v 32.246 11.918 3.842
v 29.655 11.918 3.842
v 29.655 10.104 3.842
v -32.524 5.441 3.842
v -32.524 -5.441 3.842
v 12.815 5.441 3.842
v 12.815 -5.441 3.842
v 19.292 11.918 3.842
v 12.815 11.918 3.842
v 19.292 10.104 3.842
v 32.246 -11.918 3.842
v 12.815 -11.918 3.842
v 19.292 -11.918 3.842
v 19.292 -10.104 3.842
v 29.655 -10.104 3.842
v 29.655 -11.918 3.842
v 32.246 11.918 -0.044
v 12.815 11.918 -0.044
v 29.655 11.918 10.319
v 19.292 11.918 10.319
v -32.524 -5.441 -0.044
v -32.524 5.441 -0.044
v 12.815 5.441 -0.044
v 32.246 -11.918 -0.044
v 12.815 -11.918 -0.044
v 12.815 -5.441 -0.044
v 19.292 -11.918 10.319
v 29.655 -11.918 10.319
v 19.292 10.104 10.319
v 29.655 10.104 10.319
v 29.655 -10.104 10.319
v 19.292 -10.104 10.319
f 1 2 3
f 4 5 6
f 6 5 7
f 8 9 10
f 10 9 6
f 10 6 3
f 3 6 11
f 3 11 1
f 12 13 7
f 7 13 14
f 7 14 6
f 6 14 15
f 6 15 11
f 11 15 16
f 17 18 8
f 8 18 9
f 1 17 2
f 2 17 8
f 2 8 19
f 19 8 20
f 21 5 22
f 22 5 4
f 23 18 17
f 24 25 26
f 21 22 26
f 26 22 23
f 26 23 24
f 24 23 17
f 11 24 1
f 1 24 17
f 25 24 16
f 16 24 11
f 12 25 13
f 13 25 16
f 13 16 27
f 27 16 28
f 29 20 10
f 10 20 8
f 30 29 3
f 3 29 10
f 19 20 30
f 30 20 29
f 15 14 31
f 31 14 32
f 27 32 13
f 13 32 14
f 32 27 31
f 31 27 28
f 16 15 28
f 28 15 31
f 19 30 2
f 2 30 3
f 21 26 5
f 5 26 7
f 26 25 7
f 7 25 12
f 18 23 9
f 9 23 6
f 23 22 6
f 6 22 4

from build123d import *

# Parameters (mm, degrees)
SKETCH2_W           = 63.5
SKETCH2_H           = 23.368
BOSS_EXTRUDE1_DEPTH = 3.81
SKETCH3_W           = 12.7
SKETCH3_H           = 1.778
BOSS_EXTRUDE2_DEPTH = 6.35
SKETCH4_W           = 2.54
SKETCH4_H           = 6.35
CUT_EXTRUDE1_DEPTH  = 24.368
SKETCH5_W           = 44.45
SKETCH5_H           = 6.35
CUT_EXTRUDE2_DEPTH  = 4.81
SCALE1_SCALE        = 1.02


with BuildPart() as part:
    # Sketch2 → Boss-Extrude1 (new body)
    with BuildSketch(Plane.XY):
        Rectangle(SKETCH2_W, SKETCH2_H)
    extrude(amount=BOSS_EXTRUDE1_DEPTH)

    # Sketch3 → Boss-Extrude2 (add)
    with BuildSketch(Plane.XY.offset(3.81)):
        with Locations((25.4, 10.795)):
            Rectangle(SKETCH3_W, SKETCH3_H)
        with Locations((25.4, -10.795)):
            Rectangle(SKETCH3_W, SKETCH3_H)
    extrude(amount=BOSS_EXTRUDE2_DEPTH)

    # Sketch4 → Cut-Extrude1 (cut, through all)
    with BuildSketch(Plane(origin=(0, 11.684, 0), x_dir=(1, 0, 0), z_dir=(0, 1, 0))):
        with Locations((30.48, -6.985)):
            Rectangle(SKETCH4_W, SKETCH4_H)
    extrude(amount=-CUT_EXTRUDE1_DEPTH, mode=Mode.SUBTRACT)

    # Sketch5 → Cut-Extrude2 (cut, through all)
    with BuildSketch(Plane.XY.offset(3.81)):
        with Locations((-9.525, -8.509)):
            Rectangle(SKETCH5_W, SKETCH5_H)
    cut_extrude2 = extrude(amount=-CUT_EXTRUDE2_DEPTH, mode=Mode.SUBTRACT)

    # Mirror1: Cut-Extrude2 across plane
    add(cut_extrude2.mirror(Plane.ZX), mode=Mode.SUBTRACT)


with BuildPart() as part_1:
    # Scale1: scaled about (6.972453348, 0, 2.217272228)
    add(part.part.scale(SCALE1_SCALE).moved(Location((-0.139449067, 0, -0.044345445))))


solid = part_1.part
